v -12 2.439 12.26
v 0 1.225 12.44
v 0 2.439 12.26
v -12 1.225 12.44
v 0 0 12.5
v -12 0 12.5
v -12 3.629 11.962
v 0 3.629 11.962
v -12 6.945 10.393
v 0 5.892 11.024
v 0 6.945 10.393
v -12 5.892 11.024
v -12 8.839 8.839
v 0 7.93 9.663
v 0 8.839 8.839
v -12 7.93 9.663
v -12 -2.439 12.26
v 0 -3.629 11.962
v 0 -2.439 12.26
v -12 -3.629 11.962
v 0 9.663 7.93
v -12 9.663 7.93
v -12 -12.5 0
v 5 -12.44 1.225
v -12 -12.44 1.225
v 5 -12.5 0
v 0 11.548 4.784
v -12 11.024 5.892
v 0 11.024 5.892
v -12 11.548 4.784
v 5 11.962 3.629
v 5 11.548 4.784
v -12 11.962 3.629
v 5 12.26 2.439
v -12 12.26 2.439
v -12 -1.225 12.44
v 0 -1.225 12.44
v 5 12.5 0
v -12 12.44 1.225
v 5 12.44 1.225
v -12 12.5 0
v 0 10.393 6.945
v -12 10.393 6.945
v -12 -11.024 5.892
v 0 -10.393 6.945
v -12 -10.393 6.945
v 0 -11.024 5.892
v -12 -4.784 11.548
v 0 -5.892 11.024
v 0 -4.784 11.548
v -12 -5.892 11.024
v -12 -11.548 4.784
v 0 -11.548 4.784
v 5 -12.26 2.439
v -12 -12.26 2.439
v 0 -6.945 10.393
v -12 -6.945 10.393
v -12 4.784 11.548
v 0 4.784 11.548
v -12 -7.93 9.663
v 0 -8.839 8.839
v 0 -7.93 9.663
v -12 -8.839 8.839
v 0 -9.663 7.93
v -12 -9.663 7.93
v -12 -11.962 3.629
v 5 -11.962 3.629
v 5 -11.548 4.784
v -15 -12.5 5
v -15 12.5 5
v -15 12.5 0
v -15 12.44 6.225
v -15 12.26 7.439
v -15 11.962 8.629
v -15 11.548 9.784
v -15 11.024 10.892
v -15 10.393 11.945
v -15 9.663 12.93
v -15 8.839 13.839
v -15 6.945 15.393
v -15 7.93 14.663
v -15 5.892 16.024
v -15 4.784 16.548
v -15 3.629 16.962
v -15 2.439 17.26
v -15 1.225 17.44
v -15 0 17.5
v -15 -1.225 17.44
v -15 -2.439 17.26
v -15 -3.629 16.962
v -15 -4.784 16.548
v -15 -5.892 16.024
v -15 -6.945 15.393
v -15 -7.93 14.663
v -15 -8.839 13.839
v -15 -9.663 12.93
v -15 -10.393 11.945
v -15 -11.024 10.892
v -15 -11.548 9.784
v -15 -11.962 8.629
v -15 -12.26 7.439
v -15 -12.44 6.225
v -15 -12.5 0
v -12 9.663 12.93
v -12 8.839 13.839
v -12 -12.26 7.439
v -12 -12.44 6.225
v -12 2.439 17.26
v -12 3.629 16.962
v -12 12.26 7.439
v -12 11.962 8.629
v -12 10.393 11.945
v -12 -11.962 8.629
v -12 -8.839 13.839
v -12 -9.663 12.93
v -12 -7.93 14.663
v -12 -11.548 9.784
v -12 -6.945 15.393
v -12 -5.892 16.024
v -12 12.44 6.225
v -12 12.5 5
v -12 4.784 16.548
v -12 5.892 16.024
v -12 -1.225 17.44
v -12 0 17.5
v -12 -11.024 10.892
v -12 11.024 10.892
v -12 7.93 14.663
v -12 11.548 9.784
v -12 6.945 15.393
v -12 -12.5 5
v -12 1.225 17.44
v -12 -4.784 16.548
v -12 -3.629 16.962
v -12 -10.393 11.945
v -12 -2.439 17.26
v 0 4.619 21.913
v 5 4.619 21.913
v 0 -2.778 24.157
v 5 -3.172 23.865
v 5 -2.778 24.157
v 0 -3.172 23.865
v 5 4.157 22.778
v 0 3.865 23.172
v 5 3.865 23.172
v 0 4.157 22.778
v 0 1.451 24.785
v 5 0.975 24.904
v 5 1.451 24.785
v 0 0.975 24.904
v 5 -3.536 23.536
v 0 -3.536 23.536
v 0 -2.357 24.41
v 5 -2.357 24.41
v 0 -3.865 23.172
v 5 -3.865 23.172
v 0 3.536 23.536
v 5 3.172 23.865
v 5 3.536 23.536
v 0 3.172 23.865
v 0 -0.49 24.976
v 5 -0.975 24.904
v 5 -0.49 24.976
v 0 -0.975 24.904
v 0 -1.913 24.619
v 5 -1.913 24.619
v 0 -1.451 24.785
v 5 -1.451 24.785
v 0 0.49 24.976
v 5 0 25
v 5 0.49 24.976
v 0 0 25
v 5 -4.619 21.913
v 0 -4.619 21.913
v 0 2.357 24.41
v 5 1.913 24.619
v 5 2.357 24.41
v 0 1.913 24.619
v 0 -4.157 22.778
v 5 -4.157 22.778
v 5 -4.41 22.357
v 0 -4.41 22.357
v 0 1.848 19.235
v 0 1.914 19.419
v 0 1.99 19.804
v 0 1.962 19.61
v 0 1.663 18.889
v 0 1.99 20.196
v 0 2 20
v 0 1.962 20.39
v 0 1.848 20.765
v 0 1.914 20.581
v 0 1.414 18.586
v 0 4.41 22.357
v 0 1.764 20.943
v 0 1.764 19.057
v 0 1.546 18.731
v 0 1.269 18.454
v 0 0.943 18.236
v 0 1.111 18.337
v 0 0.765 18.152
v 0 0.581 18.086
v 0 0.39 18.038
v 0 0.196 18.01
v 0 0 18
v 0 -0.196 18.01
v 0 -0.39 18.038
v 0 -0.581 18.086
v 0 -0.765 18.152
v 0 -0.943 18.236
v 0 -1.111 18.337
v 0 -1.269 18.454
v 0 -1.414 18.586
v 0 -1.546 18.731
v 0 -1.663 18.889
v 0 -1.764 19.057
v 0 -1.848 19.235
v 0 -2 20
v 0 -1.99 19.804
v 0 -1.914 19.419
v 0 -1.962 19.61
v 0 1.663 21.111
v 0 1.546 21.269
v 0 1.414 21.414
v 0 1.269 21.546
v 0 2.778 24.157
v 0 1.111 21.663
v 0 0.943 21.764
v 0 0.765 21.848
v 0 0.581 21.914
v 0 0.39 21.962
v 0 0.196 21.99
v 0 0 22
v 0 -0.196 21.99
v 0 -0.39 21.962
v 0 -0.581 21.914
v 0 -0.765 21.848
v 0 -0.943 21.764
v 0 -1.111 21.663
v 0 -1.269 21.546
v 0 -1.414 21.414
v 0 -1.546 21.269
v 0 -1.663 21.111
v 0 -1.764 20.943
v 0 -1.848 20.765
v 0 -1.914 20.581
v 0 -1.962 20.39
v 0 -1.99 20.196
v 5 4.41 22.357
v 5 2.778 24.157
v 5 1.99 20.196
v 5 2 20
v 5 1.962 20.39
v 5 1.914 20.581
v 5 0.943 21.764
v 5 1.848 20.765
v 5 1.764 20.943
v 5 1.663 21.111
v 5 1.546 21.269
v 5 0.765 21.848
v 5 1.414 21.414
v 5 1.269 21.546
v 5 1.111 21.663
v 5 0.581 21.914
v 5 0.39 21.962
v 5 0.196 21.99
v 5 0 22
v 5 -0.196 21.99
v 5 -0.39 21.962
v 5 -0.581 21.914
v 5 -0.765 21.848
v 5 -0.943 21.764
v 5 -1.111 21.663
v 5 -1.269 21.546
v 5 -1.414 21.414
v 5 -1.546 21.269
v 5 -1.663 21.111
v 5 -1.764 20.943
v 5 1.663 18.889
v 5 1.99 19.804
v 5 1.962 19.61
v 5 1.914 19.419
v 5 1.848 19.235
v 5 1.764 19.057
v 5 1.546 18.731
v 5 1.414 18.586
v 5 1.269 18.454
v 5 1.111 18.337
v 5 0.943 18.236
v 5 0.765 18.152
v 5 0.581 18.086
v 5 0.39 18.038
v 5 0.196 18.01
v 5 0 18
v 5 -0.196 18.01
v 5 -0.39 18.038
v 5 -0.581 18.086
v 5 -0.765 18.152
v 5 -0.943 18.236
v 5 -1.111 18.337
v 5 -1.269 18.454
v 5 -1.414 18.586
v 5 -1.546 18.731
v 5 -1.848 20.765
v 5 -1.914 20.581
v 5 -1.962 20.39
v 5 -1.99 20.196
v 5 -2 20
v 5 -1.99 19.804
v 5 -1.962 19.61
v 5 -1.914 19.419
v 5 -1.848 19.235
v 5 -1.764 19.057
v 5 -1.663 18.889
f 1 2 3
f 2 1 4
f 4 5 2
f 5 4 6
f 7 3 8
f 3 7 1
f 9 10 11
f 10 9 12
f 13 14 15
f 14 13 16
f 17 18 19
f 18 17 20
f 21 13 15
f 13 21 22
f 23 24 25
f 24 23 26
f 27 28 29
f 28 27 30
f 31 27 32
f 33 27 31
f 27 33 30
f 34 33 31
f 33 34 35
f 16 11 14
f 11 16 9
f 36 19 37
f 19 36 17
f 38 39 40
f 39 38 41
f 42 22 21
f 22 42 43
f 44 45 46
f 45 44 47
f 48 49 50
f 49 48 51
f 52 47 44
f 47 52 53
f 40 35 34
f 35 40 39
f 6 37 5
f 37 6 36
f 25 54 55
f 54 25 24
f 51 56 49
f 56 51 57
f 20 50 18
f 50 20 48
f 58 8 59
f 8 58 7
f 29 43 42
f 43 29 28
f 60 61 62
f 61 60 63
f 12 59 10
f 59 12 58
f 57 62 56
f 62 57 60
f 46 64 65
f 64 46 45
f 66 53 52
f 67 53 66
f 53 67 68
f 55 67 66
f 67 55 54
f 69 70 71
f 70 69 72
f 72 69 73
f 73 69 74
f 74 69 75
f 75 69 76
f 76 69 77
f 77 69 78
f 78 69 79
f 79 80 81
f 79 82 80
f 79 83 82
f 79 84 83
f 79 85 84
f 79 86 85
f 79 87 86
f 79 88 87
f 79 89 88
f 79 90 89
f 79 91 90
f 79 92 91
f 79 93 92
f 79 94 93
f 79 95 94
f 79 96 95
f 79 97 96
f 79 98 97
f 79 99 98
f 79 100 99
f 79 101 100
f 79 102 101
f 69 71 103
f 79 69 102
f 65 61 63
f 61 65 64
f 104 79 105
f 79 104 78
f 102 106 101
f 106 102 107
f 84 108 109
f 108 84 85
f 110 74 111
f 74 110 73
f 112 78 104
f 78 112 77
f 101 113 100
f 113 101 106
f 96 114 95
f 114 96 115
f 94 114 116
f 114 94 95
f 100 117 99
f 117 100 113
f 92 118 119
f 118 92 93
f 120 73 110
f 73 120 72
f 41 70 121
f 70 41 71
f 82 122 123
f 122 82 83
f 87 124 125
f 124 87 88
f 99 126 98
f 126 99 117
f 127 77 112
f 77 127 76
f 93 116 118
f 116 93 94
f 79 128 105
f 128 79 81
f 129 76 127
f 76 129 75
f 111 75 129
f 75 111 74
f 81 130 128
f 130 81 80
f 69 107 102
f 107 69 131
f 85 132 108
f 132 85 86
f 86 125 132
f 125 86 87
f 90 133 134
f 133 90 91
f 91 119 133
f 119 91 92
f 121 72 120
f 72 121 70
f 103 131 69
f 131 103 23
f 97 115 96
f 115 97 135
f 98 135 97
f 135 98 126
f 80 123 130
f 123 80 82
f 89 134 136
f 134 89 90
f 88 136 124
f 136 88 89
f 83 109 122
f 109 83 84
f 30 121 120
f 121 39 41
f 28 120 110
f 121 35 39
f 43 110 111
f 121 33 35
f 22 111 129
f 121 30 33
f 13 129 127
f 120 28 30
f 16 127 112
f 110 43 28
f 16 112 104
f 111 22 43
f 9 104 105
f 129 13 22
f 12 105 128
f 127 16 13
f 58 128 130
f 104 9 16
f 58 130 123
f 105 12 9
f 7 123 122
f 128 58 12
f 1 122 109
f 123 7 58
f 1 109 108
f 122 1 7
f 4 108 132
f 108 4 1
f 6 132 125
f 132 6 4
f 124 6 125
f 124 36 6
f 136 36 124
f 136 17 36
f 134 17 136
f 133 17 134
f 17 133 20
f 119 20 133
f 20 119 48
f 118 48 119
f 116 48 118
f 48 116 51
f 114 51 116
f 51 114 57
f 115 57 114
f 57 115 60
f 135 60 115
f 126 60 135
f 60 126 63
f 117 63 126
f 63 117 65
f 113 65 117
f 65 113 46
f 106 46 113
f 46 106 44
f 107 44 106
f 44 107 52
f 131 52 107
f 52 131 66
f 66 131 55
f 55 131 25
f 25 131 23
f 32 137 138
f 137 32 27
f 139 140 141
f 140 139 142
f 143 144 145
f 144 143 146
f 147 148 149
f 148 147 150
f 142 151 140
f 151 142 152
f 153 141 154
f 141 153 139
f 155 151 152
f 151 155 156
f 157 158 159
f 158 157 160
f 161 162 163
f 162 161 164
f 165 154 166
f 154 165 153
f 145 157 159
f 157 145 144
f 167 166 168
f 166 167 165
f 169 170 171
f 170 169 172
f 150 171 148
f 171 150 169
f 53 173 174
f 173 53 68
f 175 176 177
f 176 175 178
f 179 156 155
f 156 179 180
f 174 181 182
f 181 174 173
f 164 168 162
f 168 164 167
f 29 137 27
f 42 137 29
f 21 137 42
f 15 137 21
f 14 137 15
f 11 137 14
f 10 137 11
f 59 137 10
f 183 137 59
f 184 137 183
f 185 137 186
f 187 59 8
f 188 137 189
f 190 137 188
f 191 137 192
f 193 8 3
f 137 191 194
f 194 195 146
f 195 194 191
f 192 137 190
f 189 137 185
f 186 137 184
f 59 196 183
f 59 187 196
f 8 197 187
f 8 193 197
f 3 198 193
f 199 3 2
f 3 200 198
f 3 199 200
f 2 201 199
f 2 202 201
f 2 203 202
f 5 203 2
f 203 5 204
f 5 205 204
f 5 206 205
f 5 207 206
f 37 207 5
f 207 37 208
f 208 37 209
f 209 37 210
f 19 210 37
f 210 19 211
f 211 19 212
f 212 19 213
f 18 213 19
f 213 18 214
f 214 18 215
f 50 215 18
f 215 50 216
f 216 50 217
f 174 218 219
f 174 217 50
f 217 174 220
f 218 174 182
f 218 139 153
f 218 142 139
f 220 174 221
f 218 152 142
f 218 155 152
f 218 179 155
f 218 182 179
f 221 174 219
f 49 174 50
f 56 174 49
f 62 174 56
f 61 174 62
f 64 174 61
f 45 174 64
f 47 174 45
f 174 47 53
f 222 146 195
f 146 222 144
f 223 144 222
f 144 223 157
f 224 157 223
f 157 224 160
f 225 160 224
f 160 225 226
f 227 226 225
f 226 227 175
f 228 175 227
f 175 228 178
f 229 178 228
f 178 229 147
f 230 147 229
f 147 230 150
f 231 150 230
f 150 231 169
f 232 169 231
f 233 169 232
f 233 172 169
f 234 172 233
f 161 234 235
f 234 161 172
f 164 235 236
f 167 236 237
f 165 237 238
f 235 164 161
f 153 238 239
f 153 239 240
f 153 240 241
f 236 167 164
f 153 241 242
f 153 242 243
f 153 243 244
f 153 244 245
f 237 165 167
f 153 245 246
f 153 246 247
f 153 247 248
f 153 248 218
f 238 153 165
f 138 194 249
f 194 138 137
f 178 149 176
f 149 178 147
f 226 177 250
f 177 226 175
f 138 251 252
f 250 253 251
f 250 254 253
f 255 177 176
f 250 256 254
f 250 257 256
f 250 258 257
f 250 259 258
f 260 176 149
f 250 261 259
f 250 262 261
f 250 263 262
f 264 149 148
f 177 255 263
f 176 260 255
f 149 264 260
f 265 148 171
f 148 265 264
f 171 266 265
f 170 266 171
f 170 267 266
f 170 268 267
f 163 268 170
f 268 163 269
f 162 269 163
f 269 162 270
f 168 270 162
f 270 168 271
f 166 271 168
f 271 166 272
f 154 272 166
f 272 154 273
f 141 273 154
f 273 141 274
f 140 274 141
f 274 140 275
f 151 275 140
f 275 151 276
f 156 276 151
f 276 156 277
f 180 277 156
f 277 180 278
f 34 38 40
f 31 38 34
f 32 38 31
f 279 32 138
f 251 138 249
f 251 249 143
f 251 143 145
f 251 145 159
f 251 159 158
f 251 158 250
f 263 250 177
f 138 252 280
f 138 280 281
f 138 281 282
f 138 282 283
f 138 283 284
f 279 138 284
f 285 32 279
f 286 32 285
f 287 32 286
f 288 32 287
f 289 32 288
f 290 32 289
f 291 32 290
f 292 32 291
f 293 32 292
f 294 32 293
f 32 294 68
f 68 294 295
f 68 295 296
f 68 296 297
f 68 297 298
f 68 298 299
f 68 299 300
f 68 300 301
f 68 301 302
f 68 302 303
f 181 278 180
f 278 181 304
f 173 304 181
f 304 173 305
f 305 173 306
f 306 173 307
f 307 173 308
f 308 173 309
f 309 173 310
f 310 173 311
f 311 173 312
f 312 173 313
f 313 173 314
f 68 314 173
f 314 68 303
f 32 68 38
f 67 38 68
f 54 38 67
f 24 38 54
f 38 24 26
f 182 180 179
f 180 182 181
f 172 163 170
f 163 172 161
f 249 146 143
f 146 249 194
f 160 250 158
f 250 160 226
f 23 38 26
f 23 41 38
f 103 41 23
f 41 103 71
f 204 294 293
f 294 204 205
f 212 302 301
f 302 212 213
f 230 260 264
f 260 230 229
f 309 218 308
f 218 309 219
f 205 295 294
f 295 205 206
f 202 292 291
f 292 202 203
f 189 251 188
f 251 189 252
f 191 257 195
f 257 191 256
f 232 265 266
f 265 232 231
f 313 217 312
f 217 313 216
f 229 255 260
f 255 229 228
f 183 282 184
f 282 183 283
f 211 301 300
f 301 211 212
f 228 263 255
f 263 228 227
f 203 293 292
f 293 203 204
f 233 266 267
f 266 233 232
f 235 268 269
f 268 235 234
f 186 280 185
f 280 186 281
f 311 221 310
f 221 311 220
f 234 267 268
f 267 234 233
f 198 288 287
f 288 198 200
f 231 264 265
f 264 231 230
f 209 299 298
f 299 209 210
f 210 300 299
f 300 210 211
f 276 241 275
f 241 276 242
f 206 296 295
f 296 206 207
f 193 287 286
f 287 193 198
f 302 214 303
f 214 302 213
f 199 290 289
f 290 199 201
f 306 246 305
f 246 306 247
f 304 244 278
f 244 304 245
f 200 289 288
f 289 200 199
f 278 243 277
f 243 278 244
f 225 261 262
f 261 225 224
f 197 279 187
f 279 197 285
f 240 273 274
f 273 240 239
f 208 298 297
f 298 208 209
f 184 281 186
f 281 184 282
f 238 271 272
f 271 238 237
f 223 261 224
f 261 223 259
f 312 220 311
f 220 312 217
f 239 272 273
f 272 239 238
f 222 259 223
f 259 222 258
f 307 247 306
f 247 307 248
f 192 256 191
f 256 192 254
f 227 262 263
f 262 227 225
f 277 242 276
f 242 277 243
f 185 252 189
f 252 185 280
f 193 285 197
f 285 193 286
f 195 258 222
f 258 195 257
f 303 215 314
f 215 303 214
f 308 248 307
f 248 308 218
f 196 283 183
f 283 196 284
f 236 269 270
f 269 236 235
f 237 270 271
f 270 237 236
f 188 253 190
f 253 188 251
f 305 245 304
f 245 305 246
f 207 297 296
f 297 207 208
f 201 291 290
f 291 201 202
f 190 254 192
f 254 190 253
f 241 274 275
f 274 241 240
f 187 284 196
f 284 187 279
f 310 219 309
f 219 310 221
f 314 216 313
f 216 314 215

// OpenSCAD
$fn = 64;

rotate([0,-90,0]) difference() {
  union() {
    // Cylinder that goes through the hole
    translate([0,0,-1]) cylinder(h=16, d=25);

    // Cylinder that holds the bin
    hull() {
      translate([0,0,12]) cylinder(h=3, d=25);
      translate([5,0,12]) cylinder(h=3, d=25);
    }

    // This creates the back mounted to the door under the sink
    hull() {
      translate([20,0,-5]) cylinder(d=10, h=5);
      translate([0,0,-5]) cylinder(h=5, d=25);
    }
  }

  // Cut away bottom of cylinders
  translate([-13,-15,-6]) cube([13,30,22]);

  // Cut away screw hole
  translate([20,0,-6]) cylinder(d=4, h=7);
}
